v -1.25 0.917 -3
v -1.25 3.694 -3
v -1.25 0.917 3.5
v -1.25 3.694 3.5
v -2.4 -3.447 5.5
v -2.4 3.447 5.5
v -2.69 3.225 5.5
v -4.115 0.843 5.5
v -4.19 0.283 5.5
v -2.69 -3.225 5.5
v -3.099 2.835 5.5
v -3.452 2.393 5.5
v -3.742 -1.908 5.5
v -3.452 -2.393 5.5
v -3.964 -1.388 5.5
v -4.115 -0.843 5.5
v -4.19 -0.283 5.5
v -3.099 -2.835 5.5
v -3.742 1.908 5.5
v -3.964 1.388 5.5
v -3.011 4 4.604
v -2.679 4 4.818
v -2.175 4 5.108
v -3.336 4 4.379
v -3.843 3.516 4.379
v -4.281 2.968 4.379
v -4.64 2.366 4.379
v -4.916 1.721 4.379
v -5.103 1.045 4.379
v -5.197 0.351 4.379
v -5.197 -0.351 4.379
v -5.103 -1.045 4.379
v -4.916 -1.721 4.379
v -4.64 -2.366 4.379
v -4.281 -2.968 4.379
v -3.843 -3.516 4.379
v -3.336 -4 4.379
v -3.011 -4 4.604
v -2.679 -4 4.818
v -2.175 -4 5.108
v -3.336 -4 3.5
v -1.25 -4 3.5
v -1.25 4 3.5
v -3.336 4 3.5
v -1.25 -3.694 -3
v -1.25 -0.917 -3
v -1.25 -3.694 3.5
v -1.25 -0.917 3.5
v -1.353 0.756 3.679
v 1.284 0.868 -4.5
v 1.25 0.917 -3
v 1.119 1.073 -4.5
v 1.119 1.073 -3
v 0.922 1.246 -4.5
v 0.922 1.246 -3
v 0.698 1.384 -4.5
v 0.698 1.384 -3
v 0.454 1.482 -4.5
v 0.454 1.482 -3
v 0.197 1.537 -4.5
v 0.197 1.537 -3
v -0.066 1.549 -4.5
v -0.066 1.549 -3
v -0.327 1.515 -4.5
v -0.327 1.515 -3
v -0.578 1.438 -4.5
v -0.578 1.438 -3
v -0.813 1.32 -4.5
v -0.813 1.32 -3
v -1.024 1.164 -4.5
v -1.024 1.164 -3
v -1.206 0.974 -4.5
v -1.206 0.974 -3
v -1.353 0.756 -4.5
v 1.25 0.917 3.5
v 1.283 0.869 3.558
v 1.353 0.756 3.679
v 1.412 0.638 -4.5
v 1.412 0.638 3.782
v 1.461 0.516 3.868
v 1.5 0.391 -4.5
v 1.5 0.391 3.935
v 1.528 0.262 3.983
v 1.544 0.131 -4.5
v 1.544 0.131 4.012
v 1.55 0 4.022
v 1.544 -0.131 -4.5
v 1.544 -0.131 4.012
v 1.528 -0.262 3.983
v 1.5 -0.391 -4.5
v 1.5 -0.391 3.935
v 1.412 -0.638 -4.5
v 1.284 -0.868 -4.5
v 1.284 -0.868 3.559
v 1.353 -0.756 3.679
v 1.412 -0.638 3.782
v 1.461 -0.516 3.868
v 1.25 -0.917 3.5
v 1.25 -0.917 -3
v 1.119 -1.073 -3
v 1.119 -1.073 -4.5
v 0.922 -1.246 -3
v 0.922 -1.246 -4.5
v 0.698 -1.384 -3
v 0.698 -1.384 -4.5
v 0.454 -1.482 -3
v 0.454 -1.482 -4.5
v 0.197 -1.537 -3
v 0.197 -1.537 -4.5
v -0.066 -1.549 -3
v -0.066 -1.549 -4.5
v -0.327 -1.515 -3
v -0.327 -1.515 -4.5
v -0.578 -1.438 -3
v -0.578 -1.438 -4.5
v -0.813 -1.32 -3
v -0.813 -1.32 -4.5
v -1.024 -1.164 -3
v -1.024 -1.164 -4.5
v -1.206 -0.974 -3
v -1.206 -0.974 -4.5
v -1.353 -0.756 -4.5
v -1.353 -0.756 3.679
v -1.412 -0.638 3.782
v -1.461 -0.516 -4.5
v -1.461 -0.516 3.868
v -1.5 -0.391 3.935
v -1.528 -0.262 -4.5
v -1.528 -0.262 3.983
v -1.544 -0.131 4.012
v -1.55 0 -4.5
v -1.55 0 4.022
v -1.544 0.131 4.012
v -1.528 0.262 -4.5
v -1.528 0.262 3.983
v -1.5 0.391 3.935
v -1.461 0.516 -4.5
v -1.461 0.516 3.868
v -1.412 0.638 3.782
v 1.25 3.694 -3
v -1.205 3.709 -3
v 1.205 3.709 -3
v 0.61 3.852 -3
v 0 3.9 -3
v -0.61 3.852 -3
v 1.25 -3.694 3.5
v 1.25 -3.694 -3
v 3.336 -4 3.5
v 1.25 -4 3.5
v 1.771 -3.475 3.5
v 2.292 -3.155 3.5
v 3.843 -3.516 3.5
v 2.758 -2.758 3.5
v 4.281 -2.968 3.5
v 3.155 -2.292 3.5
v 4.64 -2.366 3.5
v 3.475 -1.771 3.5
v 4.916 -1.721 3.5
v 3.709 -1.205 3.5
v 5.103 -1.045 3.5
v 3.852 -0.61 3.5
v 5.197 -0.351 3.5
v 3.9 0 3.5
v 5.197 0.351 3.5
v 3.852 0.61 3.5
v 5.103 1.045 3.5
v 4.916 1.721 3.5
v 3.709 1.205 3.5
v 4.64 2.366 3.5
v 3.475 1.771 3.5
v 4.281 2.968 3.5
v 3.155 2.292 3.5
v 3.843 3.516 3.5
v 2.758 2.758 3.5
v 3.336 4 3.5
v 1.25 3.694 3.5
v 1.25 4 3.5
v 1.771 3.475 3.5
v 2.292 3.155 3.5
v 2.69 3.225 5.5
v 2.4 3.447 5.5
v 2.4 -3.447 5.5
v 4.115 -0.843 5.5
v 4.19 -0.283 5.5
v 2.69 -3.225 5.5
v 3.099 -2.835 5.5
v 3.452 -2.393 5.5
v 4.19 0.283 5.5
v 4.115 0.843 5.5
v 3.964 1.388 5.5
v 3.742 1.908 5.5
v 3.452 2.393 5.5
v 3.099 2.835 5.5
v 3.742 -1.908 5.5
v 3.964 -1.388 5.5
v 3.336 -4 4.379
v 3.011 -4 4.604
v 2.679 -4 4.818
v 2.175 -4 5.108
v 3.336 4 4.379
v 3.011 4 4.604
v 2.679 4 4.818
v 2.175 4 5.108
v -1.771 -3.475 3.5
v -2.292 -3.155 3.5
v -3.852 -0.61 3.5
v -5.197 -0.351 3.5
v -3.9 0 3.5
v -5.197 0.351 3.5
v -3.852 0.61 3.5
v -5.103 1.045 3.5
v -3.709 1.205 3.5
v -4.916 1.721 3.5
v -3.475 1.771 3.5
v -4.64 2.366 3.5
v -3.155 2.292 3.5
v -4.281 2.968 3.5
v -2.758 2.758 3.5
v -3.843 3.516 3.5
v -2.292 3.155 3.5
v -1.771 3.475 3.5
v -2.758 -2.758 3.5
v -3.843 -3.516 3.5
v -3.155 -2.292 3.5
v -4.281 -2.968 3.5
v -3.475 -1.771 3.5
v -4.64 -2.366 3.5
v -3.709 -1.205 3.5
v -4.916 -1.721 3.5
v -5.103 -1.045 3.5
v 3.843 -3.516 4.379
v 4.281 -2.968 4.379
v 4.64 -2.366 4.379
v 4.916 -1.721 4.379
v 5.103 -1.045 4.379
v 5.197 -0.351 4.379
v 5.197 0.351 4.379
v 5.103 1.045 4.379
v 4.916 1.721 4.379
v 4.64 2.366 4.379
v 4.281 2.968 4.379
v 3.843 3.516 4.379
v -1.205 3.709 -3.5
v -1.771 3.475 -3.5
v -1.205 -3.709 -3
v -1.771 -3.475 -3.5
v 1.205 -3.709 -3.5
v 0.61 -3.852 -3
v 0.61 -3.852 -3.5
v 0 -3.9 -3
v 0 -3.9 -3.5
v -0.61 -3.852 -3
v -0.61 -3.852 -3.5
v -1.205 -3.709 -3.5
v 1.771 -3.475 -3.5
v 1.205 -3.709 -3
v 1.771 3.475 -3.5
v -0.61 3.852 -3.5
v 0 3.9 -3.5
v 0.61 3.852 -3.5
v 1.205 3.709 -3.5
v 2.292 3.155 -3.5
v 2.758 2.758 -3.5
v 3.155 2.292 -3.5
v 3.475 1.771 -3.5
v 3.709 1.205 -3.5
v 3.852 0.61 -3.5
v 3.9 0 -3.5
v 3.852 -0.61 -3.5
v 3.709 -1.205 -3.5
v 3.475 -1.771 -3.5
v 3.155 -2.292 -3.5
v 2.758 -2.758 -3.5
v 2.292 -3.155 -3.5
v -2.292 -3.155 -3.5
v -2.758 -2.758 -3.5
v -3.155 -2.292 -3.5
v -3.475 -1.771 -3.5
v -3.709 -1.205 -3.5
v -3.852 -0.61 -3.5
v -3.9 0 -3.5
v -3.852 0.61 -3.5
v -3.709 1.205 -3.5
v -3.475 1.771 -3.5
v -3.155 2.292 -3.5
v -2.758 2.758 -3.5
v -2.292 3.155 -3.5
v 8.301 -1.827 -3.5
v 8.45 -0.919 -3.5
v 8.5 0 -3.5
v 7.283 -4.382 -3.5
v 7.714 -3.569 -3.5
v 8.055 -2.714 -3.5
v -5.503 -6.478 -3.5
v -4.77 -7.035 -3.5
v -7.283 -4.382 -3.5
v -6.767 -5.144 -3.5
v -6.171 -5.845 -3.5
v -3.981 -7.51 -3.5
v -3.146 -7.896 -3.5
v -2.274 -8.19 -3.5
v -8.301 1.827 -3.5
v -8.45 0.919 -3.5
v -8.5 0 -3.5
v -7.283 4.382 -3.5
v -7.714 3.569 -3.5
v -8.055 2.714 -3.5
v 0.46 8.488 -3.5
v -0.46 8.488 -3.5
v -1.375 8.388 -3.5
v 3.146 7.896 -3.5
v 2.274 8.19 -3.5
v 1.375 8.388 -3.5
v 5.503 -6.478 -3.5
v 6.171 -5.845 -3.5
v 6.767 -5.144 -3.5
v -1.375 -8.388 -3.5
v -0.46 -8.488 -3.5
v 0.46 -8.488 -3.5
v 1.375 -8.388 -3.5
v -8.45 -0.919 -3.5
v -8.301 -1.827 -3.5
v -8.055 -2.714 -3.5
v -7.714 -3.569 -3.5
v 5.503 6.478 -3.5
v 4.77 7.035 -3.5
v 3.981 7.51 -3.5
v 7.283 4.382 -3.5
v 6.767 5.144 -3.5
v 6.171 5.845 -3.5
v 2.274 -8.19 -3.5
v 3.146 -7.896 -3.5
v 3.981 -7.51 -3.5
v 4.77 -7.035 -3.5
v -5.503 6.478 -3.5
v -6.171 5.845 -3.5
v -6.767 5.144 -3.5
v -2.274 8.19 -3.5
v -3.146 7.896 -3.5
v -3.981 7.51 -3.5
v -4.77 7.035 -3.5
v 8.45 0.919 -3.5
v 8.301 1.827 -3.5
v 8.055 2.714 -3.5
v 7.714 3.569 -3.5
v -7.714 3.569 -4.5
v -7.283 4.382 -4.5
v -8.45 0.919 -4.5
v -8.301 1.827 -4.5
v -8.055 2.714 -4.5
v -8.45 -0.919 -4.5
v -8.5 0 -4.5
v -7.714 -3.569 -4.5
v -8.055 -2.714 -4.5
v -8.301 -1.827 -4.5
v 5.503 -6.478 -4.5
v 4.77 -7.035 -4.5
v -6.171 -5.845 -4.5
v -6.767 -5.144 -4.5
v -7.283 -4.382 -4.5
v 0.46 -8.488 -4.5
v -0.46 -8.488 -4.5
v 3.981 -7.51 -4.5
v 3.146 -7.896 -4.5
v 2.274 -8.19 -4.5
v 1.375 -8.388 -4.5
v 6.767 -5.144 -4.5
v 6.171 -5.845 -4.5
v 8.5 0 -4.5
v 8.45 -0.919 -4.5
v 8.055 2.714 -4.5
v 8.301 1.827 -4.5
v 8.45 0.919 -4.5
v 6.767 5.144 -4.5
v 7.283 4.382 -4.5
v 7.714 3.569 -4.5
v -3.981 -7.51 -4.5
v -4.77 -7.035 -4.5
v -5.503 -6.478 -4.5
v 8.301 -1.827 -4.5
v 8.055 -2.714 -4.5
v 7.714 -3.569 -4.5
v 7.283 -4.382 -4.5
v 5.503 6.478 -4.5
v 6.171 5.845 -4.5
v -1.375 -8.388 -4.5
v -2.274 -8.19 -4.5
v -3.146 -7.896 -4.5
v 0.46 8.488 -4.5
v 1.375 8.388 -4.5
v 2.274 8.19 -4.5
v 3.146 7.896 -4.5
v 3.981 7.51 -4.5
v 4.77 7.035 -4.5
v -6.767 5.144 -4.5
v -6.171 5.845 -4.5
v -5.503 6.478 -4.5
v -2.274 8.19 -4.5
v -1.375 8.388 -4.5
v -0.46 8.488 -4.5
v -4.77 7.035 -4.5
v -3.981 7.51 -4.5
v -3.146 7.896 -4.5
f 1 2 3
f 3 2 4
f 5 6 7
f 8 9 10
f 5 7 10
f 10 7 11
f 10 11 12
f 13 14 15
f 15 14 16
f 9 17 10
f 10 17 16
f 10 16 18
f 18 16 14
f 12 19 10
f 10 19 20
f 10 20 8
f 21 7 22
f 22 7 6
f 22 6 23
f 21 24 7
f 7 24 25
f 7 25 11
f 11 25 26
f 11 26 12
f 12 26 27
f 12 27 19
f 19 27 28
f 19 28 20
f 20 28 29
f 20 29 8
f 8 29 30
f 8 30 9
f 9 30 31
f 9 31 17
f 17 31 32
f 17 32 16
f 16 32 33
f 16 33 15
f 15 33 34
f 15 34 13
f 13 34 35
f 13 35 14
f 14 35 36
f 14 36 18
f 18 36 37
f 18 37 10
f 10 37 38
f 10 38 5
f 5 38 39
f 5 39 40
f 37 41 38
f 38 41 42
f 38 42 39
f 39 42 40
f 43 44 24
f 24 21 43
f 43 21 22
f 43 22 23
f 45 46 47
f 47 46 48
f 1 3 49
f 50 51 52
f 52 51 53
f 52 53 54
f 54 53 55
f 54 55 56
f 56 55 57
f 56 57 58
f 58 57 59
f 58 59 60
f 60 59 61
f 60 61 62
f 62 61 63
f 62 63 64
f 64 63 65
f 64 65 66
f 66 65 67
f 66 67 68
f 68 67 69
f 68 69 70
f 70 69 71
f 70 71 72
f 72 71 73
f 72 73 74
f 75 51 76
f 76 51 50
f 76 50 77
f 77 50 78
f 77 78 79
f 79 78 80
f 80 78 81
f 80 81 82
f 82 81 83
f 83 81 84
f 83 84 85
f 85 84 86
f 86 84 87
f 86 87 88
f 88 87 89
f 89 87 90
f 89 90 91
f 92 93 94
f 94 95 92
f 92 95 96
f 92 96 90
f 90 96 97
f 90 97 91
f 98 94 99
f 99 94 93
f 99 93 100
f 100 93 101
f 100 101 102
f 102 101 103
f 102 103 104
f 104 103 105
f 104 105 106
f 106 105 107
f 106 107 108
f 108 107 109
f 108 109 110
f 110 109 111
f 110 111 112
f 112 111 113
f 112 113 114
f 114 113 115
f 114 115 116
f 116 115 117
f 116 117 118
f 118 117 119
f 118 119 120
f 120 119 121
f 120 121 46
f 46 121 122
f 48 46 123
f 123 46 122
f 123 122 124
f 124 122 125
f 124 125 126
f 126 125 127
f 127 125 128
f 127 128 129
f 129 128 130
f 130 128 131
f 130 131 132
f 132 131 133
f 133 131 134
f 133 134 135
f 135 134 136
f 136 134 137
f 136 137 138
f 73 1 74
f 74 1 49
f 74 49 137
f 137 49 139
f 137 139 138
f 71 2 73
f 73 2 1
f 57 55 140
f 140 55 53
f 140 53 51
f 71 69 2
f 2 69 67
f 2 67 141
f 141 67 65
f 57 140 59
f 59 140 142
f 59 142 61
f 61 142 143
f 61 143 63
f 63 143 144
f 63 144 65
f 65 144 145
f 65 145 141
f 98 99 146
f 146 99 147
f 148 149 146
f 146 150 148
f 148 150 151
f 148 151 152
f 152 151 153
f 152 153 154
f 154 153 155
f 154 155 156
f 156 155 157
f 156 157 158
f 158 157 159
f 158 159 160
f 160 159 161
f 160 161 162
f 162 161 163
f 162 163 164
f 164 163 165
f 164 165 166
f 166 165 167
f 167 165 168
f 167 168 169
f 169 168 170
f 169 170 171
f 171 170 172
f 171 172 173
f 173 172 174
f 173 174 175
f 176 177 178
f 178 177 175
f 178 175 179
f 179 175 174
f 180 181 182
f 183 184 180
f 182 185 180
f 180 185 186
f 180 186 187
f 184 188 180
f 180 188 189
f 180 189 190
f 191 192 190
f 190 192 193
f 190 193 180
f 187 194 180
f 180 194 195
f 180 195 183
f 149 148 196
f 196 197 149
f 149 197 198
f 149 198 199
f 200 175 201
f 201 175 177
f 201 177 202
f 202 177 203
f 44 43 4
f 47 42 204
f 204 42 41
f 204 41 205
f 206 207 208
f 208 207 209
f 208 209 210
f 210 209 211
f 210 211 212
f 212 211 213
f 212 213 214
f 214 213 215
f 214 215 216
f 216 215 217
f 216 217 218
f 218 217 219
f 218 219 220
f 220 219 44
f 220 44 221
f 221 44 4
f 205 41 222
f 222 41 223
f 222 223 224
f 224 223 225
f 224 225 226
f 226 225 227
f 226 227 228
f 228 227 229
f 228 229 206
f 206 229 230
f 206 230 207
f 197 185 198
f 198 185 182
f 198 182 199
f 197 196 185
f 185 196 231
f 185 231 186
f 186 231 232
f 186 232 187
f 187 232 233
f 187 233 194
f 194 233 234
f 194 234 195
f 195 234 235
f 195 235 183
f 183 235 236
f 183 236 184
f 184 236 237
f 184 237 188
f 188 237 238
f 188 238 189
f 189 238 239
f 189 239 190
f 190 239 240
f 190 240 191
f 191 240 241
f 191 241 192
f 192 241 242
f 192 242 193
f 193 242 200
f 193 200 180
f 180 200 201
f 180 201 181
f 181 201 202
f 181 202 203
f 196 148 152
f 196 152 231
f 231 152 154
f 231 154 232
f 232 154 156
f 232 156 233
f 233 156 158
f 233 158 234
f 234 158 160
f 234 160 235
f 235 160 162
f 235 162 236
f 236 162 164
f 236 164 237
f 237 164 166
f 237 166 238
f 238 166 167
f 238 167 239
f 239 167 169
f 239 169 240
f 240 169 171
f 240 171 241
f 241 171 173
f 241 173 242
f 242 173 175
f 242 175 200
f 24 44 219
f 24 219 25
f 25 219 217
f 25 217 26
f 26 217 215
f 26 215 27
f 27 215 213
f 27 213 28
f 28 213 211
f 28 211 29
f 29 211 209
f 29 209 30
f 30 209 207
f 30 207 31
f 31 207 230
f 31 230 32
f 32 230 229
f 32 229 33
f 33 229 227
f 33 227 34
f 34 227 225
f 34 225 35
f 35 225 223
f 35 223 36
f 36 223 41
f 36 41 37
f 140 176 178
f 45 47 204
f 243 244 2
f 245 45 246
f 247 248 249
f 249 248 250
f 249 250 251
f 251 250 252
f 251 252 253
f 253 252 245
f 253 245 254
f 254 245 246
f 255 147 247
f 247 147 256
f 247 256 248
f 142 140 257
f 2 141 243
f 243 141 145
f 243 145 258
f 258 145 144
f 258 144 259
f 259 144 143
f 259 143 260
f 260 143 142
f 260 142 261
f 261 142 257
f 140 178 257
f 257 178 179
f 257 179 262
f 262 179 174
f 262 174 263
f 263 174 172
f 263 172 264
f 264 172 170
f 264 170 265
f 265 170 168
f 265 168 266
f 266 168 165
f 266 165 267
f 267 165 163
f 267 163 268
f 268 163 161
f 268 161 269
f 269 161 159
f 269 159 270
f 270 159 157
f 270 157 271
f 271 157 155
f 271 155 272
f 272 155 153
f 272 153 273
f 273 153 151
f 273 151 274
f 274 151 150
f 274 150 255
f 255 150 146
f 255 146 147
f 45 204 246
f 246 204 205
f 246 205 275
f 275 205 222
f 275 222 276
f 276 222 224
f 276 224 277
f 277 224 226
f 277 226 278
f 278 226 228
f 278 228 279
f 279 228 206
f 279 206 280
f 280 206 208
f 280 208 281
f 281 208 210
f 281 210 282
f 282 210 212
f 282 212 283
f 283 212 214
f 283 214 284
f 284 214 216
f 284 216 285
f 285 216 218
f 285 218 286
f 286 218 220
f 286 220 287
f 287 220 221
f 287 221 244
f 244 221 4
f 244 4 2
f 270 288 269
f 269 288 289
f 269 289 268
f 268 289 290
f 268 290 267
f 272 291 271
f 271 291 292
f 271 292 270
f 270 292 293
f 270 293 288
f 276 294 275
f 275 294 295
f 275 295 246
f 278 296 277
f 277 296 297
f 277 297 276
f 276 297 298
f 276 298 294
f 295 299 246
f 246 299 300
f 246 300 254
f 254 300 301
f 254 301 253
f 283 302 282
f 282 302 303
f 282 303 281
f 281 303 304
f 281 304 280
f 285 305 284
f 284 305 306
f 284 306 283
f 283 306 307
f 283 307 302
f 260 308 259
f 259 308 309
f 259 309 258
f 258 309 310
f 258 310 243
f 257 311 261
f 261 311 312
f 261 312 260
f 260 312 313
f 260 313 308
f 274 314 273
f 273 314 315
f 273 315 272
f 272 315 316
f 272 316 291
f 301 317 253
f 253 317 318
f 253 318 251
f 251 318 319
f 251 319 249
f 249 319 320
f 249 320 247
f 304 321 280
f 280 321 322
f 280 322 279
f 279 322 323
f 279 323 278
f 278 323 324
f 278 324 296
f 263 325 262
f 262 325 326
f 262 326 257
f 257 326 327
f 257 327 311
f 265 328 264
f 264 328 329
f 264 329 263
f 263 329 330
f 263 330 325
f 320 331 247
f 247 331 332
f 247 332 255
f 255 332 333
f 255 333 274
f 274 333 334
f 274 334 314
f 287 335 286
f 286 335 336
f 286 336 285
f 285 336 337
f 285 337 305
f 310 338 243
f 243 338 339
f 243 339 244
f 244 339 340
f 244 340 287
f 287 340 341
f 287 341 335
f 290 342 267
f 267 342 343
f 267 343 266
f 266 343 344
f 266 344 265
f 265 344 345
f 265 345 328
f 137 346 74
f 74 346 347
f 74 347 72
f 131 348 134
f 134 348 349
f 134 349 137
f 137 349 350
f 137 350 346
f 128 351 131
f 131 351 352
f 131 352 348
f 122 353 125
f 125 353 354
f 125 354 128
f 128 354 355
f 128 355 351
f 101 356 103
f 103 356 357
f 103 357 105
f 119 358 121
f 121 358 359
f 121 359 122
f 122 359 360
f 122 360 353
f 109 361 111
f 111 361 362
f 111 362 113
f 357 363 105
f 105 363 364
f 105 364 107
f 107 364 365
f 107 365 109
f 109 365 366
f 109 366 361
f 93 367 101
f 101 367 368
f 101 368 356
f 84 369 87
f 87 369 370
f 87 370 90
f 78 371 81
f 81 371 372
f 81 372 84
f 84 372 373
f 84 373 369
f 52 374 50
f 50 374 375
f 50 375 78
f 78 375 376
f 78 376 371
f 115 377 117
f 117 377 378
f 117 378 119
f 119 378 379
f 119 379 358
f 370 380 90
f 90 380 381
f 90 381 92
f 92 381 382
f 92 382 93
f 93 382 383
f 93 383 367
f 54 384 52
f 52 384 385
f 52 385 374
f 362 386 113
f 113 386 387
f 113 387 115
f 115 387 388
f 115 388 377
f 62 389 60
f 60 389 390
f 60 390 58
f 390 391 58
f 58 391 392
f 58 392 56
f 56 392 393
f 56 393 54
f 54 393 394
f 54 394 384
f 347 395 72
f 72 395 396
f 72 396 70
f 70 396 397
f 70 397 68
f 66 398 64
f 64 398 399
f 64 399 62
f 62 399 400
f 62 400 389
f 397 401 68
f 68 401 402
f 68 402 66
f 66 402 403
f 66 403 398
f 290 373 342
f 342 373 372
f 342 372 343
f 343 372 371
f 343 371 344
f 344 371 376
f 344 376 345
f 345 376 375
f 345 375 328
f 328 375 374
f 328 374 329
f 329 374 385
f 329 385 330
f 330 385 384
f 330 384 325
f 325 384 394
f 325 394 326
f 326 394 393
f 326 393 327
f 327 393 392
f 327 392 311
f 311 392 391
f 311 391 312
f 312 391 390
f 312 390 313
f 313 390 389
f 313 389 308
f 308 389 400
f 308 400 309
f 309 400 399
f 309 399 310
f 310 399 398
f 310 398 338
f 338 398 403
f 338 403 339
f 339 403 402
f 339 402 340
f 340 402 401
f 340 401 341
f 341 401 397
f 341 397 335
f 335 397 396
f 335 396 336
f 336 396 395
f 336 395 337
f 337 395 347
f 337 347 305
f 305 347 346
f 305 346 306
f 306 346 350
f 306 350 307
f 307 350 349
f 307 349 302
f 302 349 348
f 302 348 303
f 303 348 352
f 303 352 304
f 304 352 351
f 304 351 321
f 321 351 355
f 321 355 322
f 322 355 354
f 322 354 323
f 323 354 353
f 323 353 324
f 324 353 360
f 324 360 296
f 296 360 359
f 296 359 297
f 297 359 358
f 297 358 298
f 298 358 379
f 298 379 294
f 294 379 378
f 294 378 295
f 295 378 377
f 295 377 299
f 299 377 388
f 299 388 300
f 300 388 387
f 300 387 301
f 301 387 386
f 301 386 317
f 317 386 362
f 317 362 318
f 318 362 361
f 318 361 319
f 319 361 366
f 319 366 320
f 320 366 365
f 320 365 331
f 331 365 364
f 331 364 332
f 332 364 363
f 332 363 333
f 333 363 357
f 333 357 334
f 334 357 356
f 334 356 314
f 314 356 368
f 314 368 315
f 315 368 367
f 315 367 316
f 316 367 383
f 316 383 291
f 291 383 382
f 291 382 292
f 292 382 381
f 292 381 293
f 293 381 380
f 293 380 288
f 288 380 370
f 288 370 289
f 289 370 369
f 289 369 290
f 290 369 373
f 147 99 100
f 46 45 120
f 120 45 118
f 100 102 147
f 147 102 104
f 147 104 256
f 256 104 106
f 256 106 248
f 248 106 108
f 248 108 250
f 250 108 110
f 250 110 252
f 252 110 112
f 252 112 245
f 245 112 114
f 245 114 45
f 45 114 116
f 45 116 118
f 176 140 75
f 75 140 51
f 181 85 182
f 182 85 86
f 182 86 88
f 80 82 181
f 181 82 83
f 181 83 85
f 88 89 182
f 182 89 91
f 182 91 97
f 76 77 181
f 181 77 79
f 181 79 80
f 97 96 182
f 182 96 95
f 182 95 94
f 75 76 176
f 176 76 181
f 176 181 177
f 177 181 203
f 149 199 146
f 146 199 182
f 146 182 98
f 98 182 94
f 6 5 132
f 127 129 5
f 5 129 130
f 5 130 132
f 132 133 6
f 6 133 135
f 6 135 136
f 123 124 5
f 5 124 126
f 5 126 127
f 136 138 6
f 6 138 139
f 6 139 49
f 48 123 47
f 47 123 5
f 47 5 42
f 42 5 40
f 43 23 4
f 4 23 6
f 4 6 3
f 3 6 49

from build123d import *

# Parameters (mm, degrees)
SKETCH1_R                = 8.5
BOSS_EXTRUDE1_DEPTH      = 6
BOSS_EXTRUDE1_DEPTH_BACK = 4.5
SKETCH2_R                = 8.5
SKETCH2_R_2              = 3.9
CUT_EXTRUDE1_DEPTH       = 3.5
CUT_EXTRUDE1_DEPTH_BACK  = 3.5
SKETCH3_R                = 8.5
SKETCH3_R_2              = 6
CUT_EXTRUDE2_DEPTH       = 3.5
CUT_EXTRUDE4_DEPTH       = 3.5
CUT_EXTRUDE5_DEPTH       = 8.5
SKETCH10_R               = 1.55
CUT_EXTRUDE6_DEPTH       = 10
CUT_EXTRUDE7_DEPTH       = 8


with BuildPart() as part:
    # Sketch1 → Boss-Extrude1 (new body, two sides)
    with BuildSketch(Plane.XY) as boss_extrude1_sk:
        Circle(SKETCH1_R)
    extrude(amount=BOSS_EXTRUDE1_DEPTH)
    extrude(boss_extrude1_sk.sketch, amount=-BOSS_EXTRUDE1_DEPTH_BACK)

    # Sketch2 → Cut-Extrude1 (cut, two sides)
    with BuildSketch(Plane.XY) as cut_extrude1_sk:
        Circle(SKETCH2_R)
        Circle(SKETCH2_R_2, mode=Mode.SUBTRACT)
    extrude(amount=CUT_EXTRUDE1_DEPTH, mode=Mode.SUBTRACT)
    extrude(cut_extrude1_sk.sketch, amount=-CUT_EXTRUDE1_DEPTH_BACK, mode=Mode.SUBTRACT)

    # Sketch3 → Cut-Extrude2 (cut)
    with BuildSketch(Plane(origin=(0, 0, 3.5), x_dir=(-1, 0, 0), z_dir=(0, 0, -1))):
        Circle(SKETCH3_R)
        Circle(SKETCH3_R_2, mode=Mode.SUBTRACT)
    extrude(amount=-CUT_EXTRUDE2_DEPTH, mode=Mode.SUBTRACT)

    # Sketch6 → Cut-Revolve1 (revolve, cut)
    with BuildSketch(Plane(origin=(0, 0, 0), x_dir=(0, 0, -1), z_dir=(1, 0, 0))):
        Polygon((-5.5, 0), (-5.5, 4.2), (-4.379199334, 5.208720599), (-3.5, 5.208720599), (-3.5, 6), (-6, 6), (-6, 0), align=None)
    revolve(axis=Axis((0, 0, -5.814918194), (0, 0, 1)), mode=Mode.SUBTRACT)

    # Sketch8 → Cut-Extrude4 (cut)
    with BuildSketch(Plane(origin=(0, 0, 3.5), x_dir=(-1, 0, 0), z_dir=(0, 0, -1))):
        Polygon((-10, 4), (0, 4), (10, 4), (10, 8.647445608), (-10, 8.647445608), align=None)
        Polygon((10, -4), (0, -4), (-10, -4), (-10, -8.418803799), (10, -8.418803799), align=None)
    extrude(amount=-CUT_EXTRUDE4_DEPTH, mode=Mode.SUBTRACT)

    # Sketch9 → Cut-Extrude5 (cut)
    with BuildSketch(Plane.XY.offset(5.5)):
        Polygon((0, 4), (-1.25, 4), (-1.25, -4), (1.25, -4), (1.25, 4), align=None)
    extrude(amount=-CUT_EXTRUDE5_DEPTH, mode=Mode.SUBTRACT)

    # Sketch10 → Cut-Extrude6 (cut)
    with BuildSketch(Plane(origin=(0, 0, -4.5), x_dir=(-1, 0, 0), z_dir=(0, 0, -1))):
        Circle(SKETCH10_R)
    extrude(amount=-CUT_EXTRUDE6_DEPTH, mode=Mode.SUBTRACT)

    # Sketch12 → Cut-Extrude7 (cut)
    with BuildSketch(Plane(origin=(0, 4, 0), x_dir=(1, 0, 0), z_dir=(0, 1, 0))):
        Polygon((-1.25, -3.5), (-1.25, -5.5), (-2.4, -5.5), align=None)
        Polygon((1.25, -5.5), (2.4, -5.5), (1.25, -3.5), align=None)
    extrude(amount=-CUT_EXTRUDE7_DEPTH, mode=Mode.SUBTRACT)


solid = part.part
